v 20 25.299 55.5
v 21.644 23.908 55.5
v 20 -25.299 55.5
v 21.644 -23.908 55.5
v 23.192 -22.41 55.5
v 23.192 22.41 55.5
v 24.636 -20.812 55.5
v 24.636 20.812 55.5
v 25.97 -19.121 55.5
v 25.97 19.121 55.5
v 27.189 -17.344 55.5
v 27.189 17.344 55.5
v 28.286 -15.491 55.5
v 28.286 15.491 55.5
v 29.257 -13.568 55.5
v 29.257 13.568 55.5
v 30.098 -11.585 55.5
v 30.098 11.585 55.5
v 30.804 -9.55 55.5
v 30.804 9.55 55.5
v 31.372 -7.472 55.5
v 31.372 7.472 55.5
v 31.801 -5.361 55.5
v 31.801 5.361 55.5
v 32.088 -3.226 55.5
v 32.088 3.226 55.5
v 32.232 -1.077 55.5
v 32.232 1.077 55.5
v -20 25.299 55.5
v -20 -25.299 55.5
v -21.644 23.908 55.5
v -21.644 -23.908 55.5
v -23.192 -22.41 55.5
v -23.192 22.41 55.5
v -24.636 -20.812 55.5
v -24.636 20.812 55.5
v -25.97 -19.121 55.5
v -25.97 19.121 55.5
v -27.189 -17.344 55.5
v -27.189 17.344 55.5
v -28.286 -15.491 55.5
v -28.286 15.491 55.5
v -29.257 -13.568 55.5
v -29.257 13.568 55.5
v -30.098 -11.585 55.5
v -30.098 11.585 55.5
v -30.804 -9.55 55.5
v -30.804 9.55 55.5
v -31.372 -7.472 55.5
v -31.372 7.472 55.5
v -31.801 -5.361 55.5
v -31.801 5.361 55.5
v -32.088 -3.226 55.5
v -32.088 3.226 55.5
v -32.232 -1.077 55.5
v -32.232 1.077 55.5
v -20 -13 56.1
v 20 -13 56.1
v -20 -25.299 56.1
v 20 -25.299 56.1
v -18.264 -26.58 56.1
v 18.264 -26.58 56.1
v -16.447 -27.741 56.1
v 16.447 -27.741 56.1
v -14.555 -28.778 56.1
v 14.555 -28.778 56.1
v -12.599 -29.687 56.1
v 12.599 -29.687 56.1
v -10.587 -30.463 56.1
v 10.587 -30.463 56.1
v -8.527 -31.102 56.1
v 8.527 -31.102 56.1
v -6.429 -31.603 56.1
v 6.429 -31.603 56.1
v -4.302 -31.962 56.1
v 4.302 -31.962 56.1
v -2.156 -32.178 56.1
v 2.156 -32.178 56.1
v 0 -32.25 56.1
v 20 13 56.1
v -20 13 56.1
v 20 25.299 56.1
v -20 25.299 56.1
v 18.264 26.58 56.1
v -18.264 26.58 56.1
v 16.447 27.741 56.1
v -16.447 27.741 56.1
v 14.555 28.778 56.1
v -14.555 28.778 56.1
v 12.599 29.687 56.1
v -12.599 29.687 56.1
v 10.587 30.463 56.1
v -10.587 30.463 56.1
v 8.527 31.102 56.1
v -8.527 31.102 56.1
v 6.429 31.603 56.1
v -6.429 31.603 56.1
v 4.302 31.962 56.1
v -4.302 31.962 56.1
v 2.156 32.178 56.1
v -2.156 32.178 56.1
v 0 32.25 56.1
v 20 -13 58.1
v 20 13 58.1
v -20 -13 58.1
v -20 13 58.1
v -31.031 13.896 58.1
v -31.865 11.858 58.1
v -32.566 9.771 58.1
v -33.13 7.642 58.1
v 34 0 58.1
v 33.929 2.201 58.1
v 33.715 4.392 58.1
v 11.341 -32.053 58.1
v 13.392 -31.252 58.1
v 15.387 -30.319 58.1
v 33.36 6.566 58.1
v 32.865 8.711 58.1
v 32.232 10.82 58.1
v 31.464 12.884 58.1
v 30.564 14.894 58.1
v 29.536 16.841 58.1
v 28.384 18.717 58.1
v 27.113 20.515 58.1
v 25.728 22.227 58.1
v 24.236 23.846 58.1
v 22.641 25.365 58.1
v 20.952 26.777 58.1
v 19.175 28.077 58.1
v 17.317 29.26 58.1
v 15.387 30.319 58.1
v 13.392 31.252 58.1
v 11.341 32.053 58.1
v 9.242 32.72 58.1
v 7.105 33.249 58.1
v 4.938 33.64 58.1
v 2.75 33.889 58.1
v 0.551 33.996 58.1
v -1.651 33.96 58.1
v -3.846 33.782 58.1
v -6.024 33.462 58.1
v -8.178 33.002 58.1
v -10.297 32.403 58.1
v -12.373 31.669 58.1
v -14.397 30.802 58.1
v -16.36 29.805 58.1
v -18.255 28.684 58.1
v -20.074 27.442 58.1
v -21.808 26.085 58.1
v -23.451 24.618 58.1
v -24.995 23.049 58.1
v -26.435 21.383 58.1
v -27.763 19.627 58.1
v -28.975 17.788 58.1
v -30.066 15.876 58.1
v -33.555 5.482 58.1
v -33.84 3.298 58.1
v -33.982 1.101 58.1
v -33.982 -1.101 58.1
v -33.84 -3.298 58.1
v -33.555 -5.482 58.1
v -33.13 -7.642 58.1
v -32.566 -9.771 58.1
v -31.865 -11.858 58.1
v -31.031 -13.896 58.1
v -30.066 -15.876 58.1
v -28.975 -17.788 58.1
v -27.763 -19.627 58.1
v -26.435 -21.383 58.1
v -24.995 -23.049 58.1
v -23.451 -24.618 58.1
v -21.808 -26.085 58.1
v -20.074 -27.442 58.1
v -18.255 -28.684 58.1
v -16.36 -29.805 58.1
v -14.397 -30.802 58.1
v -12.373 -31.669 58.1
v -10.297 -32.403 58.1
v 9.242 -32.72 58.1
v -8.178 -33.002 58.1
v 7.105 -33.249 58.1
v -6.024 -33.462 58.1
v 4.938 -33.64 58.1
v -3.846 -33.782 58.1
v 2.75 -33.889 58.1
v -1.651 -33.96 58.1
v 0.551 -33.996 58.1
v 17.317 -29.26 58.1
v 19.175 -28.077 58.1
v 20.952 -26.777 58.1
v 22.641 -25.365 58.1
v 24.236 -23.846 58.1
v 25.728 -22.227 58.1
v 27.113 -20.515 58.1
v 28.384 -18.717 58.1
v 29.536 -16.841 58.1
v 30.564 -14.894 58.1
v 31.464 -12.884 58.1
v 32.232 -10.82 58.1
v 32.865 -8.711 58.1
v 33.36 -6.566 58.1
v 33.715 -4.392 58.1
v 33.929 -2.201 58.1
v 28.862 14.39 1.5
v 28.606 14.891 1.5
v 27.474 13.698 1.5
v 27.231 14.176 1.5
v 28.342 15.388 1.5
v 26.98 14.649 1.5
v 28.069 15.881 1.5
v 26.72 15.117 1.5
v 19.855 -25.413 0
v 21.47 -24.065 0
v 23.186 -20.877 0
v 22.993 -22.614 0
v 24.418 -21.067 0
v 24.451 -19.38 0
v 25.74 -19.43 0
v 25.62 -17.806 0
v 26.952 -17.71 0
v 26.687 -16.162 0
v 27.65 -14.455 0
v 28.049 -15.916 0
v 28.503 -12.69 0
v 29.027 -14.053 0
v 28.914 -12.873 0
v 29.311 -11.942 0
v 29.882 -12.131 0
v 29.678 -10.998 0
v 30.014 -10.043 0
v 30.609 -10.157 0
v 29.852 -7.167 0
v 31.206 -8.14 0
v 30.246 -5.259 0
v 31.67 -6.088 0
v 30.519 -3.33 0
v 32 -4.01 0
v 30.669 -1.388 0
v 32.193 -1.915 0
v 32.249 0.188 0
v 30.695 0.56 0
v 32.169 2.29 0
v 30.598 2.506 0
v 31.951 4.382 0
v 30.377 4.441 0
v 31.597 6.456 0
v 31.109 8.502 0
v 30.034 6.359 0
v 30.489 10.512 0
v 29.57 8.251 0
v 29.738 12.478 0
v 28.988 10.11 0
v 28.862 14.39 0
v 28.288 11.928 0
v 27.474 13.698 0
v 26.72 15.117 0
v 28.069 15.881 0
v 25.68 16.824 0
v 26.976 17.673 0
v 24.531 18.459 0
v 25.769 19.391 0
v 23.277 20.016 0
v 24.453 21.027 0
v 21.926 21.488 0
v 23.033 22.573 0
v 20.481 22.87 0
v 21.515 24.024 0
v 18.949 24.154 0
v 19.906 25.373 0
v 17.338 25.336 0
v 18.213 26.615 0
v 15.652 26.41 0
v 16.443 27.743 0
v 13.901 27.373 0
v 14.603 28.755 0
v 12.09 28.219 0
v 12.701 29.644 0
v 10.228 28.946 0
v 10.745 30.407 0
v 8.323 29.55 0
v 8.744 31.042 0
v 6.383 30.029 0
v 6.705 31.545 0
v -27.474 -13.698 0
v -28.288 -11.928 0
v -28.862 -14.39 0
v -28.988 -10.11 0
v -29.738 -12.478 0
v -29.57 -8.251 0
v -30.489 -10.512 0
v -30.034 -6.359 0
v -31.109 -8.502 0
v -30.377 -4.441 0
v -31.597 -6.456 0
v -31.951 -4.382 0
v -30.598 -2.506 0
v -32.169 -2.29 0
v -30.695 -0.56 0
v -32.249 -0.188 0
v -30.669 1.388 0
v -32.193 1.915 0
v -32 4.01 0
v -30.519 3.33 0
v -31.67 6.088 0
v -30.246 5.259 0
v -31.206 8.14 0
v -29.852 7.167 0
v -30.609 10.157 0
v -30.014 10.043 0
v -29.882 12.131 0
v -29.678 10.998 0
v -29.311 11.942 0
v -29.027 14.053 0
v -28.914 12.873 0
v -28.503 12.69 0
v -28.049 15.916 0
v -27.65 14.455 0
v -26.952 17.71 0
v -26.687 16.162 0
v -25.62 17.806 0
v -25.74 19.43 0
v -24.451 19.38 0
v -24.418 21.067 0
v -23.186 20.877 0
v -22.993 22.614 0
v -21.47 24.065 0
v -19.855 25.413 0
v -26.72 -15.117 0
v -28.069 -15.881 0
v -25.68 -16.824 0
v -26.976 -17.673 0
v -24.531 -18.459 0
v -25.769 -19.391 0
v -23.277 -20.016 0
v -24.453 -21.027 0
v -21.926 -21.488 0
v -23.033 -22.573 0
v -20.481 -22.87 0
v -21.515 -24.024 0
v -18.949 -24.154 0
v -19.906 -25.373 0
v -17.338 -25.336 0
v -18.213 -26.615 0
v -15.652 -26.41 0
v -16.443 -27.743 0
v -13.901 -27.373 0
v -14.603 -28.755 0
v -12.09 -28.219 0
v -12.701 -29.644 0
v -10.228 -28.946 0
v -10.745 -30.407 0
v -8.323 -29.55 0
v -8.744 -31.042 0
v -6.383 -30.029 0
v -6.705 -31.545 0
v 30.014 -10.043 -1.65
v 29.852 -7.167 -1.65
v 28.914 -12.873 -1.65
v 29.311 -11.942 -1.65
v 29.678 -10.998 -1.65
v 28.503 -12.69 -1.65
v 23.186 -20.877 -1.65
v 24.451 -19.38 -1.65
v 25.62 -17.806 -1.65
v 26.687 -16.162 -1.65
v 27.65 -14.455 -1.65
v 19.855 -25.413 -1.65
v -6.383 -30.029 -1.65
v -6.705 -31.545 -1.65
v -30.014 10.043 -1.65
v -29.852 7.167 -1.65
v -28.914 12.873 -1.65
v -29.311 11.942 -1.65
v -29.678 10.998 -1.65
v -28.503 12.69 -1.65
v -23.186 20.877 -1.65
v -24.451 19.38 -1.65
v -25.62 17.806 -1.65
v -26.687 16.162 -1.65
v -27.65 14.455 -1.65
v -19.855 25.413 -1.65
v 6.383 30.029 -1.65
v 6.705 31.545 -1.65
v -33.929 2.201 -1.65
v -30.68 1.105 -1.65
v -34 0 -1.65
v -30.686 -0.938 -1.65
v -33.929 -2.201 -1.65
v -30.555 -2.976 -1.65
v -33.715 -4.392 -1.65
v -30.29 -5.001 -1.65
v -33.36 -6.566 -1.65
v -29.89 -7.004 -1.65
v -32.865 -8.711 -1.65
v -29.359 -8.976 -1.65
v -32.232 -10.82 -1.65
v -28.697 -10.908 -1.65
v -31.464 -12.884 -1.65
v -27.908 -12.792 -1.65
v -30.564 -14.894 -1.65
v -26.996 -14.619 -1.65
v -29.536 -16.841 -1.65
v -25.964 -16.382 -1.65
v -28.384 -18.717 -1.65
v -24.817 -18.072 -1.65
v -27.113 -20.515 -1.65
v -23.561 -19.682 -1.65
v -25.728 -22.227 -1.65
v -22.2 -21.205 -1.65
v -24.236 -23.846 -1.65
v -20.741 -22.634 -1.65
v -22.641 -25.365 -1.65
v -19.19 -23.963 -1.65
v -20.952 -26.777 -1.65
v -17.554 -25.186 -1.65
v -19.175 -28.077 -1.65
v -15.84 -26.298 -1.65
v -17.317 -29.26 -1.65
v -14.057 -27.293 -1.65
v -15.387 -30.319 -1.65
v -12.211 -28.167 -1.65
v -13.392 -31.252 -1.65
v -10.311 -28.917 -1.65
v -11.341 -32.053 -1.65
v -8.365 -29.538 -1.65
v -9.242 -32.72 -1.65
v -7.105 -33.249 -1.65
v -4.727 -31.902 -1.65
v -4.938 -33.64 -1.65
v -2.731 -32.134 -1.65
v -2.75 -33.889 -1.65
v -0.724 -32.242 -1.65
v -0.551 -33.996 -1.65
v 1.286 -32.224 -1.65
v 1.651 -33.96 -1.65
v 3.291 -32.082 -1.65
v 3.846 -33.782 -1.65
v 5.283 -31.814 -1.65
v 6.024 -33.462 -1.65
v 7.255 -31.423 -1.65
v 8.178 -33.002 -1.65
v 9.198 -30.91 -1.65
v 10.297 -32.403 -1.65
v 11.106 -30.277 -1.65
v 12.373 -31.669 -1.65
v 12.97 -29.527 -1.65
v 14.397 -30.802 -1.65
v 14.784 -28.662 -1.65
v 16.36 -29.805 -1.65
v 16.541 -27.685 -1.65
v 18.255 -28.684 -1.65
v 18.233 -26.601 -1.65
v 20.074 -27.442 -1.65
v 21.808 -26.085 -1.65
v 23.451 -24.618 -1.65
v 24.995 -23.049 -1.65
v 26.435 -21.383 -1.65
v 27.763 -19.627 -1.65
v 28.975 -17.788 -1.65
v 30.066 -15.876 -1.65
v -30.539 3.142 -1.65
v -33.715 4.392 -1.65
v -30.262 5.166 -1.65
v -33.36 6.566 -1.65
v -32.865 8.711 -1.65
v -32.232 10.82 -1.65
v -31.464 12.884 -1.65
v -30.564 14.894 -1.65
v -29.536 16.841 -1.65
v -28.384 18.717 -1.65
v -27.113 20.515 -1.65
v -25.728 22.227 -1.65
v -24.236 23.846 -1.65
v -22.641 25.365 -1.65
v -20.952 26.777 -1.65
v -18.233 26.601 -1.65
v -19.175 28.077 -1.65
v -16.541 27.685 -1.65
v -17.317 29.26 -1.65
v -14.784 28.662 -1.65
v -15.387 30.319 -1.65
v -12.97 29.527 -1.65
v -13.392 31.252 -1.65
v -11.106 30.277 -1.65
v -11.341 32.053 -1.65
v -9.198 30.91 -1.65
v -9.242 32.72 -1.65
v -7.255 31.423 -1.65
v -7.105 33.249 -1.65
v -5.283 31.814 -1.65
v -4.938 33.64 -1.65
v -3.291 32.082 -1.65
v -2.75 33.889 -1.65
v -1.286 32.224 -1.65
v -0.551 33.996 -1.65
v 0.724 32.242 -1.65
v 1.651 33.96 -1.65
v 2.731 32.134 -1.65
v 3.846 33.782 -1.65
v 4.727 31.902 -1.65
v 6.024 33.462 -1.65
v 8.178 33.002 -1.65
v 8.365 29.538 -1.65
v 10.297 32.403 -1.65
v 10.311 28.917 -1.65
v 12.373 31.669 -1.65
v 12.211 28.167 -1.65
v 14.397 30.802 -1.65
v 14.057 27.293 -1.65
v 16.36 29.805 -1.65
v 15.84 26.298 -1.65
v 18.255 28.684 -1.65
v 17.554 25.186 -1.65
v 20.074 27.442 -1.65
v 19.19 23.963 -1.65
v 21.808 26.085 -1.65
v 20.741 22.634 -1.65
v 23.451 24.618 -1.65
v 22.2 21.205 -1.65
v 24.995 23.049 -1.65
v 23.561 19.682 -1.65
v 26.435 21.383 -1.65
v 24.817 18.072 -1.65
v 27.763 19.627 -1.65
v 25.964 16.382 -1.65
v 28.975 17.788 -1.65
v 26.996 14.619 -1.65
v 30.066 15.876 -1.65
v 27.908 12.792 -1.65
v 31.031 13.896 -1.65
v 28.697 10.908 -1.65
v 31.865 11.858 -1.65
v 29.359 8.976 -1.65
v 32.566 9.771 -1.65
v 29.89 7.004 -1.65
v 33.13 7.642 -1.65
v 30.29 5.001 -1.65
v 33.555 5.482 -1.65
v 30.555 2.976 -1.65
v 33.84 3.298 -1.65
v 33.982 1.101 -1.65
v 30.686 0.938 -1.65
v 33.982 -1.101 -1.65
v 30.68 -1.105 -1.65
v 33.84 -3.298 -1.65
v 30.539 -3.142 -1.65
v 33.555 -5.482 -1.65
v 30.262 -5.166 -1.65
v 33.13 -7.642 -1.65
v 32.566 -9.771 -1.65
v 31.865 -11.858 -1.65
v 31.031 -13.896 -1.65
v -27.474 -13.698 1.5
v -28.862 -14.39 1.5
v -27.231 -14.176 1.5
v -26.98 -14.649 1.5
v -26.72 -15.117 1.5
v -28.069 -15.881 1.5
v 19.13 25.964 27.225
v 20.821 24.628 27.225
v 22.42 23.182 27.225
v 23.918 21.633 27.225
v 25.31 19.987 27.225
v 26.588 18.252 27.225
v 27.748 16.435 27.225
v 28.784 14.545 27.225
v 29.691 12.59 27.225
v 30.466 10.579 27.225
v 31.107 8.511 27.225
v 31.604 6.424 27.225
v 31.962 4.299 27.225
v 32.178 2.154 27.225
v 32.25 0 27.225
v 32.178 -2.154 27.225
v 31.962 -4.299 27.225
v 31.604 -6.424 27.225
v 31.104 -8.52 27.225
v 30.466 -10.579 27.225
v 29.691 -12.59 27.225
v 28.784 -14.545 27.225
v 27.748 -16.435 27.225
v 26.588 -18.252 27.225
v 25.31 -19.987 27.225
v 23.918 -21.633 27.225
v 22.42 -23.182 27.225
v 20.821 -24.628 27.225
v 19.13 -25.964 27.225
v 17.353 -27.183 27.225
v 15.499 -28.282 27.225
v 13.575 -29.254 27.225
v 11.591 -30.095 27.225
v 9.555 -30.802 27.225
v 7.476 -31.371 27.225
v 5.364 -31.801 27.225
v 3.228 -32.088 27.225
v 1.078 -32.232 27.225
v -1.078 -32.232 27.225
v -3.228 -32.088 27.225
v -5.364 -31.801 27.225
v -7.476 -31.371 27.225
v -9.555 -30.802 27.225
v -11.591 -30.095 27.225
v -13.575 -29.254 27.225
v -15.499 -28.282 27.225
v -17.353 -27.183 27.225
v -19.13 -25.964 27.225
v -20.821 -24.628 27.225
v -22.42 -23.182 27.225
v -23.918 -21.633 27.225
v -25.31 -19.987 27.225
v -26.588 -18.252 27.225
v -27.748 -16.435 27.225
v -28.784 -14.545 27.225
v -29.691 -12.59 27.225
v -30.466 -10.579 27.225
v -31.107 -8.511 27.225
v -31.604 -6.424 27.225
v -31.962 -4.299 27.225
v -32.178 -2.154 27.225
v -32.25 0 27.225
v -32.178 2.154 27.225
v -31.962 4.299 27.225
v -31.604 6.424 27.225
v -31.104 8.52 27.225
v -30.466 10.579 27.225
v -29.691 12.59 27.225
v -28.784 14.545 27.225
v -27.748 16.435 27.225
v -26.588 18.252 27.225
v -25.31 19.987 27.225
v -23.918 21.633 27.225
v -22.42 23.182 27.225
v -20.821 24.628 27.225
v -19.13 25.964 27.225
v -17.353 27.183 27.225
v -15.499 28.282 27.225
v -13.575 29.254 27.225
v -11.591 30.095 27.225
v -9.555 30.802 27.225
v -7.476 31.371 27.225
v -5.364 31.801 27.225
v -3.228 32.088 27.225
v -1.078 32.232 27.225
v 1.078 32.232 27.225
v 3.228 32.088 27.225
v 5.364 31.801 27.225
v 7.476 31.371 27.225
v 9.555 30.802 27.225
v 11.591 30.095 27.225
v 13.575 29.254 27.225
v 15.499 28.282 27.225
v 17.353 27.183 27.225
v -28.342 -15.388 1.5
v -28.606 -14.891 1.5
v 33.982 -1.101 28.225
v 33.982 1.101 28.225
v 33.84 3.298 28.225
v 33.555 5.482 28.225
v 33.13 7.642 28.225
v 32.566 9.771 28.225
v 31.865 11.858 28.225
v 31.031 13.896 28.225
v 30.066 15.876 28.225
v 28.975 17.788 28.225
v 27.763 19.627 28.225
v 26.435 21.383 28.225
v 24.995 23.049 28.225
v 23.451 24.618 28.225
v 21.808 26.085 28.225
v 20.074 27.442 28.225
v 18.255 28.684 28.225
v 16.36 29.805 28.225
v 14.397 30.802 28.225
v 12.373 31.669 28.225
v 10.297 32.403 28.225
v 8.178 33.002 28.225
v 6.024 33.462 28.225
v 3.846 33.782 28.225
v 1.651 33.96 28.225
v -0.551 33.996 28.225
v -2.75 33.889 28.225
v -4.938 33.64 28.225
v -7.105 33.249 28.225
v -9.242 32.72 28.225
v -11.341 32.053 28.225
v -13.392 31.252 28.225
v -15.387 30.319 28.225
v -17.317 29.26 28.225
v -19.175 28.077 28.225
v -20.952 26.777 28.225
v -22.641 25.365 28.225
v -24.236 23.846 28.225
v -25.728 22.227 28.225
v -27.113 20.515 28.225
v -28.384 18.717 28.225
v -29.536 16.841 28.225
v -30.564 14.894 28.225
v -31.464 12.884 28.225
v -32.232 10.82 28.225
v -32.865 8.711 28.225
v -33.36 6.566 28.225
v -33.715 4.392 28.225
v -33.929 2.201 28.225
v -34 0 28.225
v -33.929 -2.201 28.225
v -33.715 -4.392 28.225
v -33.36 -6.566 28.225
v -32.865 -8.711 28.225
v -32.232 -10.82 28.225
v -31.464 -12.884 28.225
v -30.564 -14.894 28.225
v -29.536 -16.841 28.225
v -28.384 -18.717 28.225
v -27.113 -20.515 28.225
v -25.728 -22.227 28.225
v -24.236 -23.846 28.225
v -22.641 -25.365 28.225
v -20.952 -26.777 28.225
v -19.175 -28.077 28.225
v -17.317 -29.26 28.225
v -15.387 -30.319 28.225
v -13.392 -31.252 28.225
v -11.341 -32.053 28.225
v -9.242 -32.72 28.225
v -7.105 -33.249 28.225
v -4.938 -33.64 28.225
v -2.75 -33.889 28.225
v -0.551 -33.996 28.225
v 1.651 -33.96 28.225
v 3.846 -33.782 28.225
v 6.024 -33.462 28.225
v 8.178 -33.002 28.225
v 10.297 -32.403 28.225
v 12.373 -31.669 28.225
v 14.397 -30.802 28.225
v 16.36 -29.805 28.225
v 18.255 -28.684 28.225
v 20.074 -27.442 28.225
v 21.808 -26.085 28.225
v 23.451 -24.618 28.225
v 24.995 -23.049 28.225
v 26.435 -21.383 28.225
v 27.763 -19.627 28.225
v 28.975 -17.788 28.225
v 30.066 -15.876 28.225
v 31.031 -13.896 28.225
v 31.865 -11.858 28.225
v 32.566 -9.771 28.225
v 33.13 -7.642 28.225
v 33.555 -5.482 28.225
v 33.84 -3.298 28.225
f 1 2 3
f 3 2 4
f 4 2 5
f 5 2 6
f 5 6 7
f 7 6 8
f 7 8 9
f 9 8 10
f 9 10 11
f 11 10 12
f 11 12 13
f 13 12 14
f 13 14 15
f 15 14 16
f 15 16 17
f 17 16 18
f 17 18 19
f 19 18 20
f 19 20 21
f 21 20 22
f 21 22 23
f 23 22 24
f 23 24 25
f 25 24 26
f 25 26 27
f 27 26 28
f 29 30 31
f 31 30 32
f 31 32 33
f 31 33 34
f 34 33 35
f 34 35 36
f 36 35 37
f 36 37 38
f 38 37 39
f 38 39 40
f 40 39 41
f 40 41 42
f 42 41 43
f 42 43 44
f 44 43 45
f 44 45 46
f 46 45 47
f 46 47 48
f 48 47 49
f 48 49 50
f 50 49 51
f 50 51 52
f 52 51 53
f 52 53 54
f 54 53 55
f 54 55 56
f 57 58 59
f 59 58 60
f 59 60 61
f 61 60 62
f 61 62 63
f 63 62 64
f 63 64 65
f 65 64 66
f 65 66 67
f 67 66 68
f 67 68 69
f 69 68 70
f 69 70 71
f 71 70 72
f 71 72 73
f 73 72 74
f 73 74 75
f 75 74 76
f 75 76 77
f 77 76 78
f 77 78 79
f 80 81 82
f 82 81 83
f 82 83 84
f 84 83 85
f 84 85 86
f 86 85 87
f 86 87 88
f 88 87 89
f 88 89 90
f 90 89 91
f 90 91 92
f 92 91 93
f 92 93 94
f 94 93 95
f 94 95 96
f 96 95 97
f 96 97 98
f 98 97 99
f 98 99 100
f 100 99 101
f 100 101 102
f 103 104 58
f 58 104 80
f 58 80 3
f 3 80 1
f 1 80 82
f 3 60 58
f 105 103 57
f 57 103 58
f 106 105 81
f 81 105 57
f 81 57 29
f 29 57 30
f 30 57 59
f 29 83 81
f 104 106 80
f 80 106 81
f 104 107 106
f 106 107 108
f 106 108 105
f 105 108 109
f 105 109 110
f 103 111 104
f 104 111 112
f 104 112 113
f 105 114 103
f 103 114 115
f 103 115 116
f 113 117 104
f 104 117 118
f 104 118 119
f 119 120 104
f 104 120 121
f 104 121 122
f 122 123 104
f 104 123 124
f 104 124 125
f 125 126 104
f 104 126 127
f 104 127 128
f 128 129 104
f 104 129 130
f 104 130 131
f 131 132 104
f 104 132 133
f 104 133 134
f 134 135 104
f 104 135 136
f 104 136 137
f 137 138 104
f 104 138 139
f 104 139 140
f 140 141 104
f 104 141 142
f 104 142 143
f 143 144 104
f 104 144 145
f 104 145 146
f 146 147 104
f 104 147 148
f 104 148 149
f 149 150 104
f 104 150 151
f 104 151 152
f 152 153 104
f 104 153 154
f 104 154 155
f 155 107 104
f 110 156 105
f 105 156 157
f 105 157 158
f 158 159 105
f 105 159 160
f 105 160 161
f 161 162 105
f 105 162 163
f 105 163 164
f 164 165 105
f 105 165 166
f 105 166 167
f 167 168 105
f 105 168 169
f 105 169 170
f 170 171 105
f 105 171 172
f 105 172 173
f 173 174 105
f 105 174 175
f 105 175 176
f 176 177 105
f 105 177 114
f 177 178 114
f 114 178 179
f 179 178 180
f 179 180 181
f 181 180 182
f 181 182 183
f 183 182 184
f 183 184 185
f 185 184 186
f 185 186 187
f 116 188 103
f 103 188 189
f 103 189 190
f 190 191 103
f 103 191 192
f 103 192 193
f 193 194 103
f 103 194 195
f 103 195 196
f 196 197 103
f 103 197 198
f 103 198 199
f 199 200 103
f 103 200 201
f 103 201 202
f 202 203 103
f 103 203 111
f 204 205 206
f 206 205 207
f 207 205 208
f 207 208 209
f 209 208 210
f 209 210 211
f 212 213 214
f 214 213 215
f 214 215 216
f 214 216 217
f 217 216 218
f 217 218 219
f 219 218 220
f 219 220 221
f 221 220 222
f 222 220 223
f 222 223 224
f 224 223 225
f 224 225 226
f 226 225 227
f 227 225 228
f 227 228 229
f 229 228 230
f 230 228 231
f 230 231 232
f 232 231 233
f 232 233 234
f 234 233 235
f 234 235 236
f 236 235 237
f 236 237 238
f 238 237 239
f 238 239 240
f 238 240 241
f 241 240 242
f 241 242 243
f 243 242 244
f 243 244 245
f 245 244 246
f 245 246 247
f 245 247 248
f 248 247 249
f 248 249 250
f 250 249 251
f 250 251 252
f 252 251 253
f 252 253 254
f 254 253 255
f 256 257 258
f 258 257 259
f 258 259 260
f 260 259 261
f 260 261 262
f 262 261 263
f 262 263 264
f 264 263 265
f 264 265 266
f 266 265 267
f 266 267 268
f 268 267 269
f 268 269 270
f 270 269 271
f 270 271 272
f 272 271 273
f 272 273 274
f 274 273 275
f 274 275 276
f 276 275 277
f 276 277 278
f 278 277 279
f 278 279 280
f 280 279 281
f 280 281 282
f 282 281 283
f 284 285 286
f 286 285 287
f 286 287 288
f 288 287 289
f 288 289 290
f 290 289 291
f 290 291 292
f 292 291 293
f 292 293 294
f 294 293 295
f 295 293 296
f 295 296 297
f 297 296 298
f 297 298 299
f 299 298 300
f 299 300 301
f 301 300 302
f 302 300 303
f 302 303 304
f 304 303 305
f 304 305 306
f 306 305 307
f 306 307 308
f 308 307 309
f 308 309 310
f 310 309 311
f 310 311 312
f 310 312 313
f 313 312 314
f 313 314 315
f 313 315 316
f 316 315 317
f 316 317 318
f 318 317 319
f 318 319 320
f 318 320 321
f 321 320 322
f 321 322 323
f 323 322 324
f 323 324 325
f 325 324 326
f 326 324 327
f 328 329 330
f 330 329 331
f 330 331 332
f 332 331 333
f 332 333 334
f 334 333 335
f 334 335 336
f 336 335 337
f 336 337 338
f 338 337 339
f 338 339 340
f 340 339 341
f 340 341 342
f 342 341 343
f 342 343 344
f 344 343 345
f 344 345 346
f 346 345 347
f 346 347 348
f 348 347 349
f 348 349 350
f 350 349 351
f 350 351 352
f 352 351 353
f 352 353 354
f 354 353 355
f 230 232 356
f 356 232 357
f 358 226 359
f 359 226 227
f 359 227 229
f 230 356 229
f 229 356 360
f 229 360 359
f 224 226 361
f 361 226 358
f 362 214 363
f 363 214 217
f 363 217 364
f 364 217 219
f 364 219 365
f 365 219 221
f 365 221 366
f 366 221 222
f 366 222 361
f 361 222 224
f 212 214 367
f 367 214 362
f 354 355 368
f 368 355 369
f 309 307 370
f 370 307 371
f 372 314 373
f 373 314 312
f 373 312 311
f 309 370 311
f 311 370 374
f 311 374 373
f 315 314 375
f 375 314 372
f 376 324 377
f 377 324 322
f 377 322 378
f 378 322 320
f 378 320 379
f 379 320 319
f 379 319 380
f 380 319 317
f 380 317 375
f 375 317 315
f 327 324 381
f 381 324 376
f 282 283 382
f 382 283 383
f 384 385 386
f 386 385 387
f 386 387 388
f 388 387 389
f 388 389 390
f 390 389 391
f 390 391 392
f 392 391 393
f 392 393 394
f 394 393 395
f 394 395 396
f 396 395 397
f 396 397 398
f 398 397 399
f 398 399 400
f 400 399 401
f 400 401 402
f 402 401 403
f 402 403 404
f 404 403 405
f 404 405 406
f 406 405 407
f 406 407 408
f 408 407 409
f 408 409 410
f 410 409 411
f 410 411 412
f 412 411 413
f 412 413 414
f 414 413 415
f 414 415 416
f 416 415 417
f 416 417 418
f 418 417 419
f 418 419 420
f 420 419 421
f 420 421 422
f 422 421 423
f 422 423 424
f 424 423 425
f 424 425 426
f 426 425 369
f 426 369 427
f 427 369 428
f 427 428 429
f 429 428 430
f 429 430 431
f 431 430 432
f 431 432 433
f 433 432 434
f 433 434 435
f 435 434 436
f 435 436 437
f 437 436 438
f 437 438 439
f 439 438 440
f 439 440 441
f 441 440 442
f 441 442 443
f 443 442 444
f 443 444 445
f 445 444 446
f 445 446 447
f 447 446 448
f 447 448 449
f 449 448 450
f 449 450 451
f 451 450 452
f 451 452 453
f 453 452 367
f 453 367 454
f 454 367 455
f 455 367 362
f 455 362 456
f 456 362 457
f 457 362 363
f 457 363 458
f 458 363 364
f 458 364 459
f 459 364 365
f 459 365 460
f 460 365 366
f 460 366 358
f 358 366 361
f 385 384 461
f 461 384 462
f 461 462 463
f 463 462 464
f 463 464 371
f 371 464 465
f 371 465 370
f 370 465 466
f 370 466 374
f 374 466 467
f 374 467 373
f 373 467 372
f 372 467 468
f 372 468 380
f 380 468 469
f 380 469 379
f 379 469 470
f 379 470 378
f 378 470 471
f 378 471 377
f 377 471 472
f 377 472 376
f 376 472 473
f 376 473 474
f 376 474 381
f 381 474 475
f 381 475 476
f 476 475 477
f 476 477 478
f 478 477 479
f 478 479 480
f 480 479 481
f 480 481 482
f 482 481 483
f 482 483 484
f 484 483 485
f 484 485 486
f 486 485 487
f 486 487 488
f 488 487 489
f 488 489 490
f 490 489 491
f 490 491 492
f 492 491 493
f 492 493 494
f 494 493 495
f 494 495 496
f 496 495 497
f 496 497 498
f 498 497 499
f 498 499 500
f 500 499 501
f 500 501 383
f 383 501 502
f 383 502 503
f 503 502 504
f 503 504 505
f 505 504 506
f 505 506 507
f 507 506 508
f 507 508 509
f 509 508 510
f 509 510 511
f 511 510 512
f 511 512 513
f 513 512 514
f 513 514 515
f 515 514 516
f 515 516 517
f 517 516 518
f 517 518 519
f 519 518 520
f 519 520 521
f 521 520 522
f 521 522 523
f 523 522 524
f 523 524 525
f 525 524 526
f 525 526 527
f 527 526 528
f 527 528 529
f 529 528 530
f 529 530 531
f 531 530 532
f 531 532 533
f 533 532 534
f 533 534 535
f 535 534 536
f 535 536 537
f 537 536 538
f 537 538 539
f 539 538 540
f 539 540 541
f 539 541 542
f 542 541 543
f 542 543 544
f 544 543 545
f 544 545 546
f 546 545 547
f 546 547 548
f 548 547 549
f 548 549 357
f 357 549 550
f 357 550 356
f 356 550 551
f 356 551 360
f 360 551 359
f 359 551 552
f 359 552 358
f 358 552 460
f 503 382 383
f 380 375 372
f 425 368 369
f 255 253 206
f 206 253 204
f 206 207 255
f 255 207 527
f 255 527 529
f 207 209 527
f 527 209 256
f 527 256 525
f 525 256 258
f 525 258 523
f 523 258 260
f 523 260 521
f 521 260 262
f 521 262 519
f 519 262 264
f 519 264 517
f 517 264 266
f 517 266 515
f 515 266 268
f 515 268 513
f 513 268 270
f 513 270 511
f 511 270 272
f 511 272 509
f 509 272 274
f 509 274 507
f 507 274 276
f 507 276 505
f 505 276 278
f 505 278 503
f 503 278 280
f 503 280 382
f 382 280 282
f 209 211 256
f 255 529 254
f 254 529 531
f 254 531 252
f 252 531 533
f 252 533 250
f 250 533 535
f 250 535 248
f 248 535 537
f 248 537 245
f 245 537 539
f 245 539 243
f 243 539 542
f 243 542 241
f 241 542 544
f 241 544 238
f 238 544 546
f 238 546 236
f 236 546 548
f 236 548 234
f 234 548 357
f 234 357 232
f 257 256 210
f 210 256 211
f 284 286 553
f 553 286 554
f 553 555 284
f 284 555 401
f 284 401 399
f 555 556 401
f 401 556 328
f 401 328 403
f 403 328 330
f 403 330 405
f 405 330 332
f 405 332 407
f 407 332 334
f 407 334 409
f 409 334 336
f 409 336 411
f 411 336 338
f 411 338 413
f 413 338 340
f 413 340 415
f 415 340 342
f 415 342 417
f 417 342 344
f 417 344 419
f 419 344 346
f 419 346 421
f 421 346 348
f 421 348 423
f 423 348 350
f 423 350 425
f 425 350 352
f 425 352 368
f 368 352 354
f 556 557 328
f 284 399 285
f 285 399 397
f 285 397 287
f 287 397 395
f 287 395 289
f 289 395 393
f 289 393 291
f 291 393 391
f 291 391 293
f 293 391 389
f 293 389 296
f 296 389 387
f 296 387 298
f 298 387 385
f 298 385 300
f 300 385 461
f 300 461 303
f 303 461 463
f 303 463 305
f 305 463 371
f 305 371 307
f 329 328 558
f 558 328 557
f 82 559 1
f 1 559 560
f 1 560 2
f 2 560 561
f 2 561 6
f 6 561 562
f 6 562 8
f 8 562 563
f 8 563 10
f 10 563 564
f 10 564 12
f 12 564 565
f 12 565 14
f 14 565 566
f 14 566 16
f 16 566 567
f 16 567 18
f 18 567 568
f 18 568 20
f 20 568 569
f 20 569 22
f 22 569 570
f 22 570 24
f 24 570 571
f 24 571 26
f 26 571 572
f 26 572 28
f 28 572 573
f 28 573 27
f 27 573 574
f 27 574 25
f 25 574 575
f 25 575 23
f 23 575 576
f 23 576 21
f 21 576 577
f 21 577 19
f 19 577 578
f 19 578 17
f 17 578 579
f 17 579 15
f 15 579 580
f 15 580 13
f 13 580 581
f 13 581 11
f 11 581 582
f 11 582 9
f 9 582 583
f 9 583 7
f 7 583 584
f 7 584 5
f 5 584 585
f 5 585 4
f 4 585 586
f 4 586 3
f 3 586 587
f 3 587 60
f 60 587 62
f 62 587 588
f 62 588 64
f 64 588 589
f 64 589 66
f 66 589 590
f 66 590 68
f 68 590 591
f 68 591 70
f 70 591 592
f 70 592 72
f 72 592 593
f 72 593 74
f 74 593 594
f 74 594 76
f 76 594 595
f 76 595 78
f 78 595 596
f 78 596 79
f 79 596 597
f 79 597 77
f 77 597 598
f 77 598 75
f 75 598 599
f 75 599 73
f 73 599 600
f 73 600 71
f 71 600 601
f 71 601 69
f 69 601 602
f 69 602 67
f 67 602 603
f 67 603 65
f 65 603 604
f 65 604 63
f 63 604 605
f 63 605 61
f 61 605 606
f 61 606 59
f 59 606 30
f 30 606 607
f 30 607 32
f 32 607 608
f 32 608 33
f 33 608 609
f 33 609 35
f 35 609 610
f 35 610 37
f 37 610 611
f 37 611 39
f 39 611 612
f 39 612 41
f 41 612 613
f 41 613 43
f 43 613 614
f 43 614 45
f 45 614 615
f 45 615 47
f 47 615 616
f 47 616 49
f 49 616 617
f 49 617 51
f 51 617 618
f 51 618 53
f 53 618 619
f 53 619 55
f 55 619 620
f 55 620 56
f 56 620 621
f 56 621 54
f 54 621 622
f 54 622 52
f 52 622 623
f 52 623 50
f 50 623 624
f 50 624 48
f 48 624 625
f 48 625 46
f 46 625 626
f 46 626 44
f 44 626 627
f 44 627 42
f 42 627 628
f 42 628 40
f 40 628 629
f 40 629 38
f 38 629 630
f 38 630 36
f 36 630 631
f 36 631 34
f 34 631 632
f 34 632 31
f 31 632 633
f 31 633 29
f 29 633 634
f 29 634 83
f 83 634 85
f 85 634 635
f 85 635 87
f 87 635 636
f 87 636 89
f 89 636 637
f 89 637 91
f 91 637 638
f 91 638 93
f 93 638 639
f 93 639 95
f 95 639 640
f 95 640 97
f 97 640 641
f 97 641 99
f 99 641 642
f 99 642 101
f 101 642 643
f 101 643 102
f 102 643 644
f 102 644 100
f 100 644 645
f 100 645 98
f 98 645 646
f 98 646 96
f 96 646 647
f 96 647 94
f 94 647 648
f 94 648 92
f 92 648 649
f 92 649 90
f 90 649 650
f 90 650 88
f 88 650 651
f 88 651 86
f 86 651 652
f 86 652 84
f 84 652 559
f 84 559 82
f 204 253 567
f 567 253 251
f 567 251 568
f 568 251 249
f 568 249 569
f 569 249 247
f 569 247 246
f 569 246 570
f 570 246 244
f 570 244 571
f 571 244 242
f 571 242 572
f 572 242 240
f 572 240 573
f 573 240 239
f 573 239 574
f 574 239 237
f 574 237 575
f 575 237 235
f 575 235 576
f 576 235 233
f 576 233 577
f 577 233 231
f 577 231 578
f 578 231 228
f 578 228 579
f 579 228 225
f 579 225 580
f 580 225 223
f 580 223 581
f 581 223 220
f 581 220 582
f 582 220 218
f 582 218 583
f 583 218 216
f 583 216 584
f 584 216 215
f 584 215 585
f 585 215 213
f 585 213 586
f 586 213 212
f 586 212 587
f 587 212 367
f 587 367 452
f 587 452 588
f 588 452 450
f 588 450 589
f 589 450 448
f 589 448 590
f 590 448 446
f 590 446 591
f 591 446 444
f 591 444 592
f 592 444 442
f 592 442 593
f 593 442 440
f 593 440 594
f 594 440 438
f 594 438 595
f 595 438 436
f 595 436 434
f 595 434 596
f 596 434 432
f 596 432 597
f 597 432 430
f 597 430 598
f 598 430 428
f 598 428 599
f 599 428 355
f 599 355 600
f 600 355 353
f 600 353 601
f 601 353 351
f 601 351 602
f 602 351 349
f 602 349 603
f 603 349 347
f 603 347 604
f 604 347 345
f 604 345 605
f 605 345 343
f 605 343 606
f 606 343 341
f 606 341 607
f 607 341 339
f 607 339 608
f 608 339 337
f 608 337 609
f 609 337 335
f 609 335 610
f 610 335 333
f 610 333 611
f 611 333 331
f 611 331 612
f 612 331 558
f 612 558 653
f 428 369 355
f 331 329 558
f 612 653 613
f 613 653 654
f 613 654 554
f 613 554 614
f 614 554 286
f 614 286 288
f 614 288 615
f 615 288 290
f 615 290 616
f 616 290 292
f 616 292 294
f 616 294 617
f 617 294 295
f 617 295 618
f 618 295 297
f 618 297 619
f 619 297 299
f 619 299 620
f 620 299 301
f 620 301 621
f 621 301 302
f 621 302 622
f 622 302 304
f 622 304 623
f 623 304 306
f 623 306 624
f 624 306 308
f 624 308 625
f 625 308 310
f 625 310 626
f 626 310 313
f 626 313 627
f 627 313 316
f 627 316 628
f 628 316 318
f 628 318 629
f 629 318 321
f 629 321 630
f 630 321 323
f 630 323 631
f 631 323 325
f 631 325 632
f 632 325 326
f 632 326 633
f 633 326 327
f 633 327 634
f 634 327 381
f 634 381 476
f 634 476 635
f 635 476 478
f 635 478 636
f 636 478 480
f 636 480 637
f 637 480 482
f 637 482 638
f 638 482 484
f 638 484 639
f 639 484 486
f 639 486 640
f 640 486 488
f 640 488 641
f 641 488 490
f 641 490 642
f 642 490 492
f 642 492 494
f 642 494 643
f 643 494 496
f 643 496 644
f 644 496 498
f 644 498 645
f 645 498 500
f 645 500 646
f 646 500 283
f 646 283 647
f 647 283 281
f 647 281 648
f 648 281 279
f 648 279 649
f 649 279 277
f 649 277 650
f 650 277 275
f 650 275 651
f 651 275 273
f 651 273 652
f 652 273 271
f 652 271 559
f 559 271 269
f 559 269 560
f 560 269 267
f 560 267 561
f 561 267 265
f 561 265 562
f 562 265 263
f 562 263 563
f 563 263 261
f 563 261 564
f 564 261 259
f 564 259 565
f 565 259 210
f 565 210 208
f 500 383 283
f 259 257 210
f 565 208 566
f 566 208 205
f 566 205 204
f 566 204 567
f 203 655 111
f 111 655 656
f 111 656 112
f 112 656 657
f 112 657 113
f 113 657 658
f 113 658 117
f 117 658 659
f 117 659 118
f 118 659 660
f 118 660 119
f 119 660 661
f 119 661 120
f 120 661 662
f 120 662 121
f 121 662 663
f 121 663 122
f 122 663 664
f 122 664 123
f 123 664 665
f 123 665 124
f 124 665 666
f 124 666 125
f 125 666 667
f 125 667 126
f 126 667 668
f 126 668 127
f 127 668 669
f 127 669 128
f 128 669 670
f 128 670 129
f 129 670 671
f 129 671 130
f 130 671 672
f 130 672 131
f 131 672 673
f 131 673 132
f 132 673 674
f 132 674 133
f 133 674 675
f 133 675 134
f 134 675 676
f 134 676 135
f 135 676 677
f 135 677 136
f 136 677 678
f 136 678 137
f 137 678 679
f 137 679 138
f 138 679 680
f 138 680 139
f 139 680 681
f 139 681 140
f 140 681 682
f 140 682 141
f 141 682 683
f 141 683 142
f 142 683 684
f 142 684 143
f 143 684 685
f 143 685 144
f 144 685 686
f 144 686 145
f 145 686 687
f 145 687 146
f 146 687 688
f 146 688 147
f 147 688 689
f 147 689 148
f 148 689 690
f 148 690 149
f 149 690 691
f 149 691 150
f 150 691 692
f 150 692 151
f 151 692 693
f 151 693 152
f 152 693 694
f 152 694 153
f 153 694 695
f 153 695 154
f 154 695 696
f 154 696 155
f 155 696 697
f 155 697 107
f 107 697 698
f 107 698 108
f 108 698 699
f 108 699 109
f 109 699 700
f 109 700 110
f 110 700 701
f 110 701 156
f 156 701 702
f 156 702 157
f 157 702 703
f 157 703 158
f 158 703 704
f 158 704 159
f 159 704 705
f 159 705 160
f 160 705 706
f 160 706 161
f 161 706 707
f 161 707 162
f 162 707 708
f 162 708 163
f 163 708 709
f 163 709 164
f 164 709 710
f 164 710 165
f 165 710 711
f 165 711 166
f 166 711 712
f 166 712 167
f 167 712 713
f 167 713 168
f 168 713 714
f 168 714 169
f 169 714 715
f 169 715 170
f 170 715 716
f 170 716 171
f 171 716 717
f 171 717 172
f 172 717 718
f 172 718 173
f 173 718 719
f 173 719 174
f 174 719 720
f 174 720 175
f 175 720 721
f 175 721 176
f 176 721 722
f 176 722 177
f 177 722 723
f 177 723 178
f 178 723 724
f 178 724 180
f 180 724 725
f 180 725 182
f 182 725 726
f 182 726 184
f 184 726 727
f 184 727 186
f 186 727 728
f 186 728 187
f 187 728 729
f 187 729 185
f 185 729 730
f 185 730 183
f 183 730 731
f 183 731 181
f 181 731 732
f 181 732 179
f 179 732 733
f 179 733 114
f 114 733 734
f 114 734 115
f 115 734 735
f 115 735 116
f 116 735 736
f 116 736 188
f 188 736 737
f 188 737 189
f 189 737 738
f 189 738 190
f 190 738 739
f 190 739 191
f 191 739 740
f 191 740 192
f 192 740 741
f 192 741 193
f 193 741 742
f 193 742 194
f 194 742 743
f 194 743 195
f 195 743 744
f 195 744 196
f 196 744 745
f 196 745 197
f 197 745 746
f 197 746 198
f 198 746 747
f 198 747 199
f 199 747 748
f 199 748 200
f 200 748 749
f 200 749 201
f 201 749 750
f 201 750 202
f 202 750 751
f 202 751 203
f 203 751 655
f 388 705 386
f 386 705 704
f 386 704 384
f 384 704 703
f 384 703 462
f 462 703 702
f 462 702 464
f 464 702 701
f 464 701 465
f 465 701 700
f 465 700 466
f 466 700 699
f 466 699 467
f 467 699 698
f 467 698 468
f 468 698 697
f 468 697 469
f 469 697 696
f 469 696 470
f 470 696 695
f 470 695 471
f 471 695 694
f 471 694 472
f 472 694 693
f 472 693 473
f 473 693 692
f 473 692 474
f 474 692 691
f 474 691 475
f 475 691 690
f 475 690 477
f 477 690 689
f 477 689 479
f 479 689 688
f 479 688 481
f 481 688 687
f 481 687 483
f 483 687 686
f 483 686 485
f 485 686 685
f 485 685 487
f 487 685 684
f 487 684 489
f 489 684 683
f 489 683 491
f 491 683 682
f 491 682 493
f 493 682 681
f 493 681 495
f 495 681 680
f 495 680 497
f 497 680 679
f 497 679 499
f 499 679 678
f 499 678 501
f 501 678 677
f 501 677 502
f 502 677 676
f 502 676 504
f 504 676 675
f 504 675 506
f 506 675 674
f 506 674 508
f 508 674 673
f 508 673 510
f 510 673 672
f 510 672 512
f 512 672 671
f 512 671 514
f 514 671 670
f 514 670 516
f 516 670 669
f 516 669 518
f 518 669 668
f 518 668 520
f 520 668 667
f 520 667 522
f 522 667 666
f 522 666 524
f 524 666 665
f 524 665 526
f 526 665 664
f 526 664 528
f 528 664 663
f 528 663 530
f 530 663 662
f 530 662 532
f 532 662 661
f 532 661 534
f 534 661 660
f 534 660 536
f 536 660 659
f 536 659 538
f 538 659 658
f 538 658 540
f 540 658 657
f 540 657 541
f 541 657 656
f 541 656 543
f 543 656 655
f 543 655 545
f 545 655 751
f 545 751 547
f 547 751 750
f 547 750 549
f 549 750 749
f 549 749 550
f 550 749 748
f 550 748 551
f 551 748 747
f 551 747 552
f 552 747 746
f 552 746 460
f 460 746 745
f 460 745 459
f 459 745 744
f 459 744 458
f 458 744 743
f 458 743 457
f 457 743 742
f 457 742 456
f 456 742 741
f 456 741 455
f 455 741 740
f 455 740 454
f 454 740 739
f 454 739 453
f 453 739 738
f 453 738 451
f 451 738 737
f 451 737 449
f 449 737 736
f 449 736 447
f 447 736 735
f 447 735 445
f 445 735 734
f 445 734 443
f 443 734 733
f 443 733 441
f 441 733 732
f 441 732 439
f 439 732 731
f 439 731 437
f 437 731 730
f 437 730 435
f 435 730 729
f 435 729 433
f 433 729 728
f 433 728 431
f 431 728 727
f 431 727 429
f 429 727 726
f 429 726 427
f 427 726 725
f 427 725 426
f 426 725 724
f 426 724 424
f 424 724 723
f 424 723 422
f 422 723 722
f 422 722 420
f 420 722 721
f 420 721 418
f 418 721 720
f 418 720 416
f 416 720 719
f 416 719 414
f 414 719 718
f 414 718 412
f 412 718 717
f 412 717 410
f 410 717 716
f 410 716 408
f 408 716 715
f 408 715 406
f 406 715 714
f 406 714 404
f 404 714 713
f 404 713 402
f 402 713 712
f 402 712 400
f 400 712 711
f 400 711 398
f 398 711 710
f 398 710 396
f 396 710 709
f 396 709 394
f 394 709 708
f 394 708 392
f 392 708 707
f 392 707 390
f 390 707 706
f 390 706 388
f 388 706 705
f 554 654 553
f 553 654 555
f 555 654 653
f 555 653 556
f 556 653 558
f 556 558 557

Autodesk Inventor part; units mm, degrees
ref_plane "YZ Plane" through (0, 0, 0) normal (1, 0, 0) x (0, 1, 0)
ref_plane "XZ Plane" through (0, 0, 0) normal (0, 1, 0) x (-1, 0, 0)
ref_plane "XY Plane" through (0, 0, 0) normal (0, 0, 1) x (1, 0, 0)
sketch "Sketch1" plane through (0, 0, 0) normal (0, 0, 1) x (1, 0, 0)
  circle A0 centre (0, 0) radius 32.25
  circle A1 centre (0, 0) radius 34
  line L0 (0, 0) -> (34, 0) construction
  line L1 (0, 0) -> (30.0202, 15.962) construction
  circle A2 centre (0, 0) radius 30.7
  line L2 (0, 0) -> (26.7199, 15.1174) construction
  line L3 (0, 0) -> (27.4745, 13.6983) construction
  line L4 (28.069, 15.8807) -> (29.5921, 16.7424) construction
  line L5 (28.8616, 14.3899) -> (30.4278, 15.1707) construction
  line L6 (27.4745, 13.6983) -> (28.8616, 14.3899)
  line L7 (26.7199, 15.1174) -> (28.069, 15.8807)
  line L8 (-26.7199, -15.1174) -> (-28.069, -15.8807)
  line L9 (-27.4745, -13.6983) -> (-28.8616, -14.3899)
  point P0 (-28.069, -15.8807)
  point P1 (-27.4745, -13.6983)
  dimension "d0" = 64.5
  dimension "d1" = 68
  dimension "d2" = 28
  dimension "d3" = 61.4
  dimension "d4" = 3
  dimension "d11" = 360
extrude "Extrusion1" add sketch "Sketch1" along normal blind 1.5 contours L6 A2 L7 A0 | A0 L9 A2 L8 | A1
sketch "Sketch2" plane through (0, 0, 0) normal (0, 0, -1) x (-1, 0, 0)
  line L0 (-27.4745, 13.6983) -> (-28.8616, 14.3899) projected
  arc A0 (-28.8616, 14.3899) -> (28.069, -15.8807) centre (0, 0) ccw projected
  line L1 (28.069, -15.8807) -> (26.7199, -15.1174) projected
  arc A1 (26.7199, -15.1174) -> (27.4745, -13.6983) centre (0, 0) ccw projected
  line L2 (27.4745, -13.6983) -> (28.8616, -14.3899) projected
  arc A2 (28.8616, -14.3899) -> (-28.069, 15.8807) centre (0, 0) ccw projected
  line L3 (-28.069, 15.8807) -> (-26.7199, 15.1174) projected
  arc A3 (-26.7199, 15.1174) -> (-27.4745, 13.6983) centre (0, 0) ccw projected
  circle A4 centre (0, 0) radius 34 projected
  line L4 (0, 0) -> (-34, 0) construction
  arc A5 (-30.7, 0) -> (-29.8518, -7.1668) centre (0, 0) ccw
  arc A6 (-28.9137, -12.8732) -> (-30.0144, -10.0427) centre (0, 0) ccw construction
  line L5 (0, 0) -> (-28.0458, -12.4868) construction
  line L6 (-28.0458, -12.4868) -> (-28.5026, -12.6902) construction
  line L7 (0, 0) -> (-30.0144, -10.0427) construction
  line L8 (0, 0) -> (-30.7755, -7.3885) construction
  line L9 (-30.0144, -10.0427) -> (-29.8518, -7.1668)
  arc A7 (-23.1861, -20.8769) -> (-28.5026, -12.6902) centre (0, 0) ccw construction
  line L10 (0, 0) -> (-23.9664, -21.5795) construction
  line L11 (-28.5026, -12.6902) -> (-28.9137, -12.8732)
  line L12 (0, 0) -> (-19.8551, -25.4133) construction
  line L13 (-23.1861, -20.8769) -> (-19.8551, -25.4133)
  arc A8 (-30.0144, -10.0427) -> (-28.9137, -12.8732) centre (0, 0) ccw
  arc A9 (-28.5026, -12.6902) -> (-23.1861, -20.8769) centre (0, 0) ccw
  arc A10 (-27.4745, 13.6983) -> (-30.7, 0) centre (0, 0) ccw
  arc A11 (-29.8518, -7.1668) -> (-26.7199, 15.1174) centre (0, 0) ccw construction
  arc A12 (-26.7199, 15.1174) -> (-27.4745, 13.6983) centre (0, 0) ccw
  arc A13 (26.7199, -15.1174) -> (27.4745, -13.6983) centre (0, 0) ccw
  arc A14 (27.4745, -13.6983) -> (30.7, 0) centre (0, 0) ccw
  arc A15 (30.7, 0) -> (29.8518, 7.1668) centre (0, 0) ccw
  line L14 (30.0144, 10.0427) -> (29.8518, 7.1668)
  arc A16 (30.0144, 10.0427) -> (28.9137, 12.8732) centre (0, 0) ccw
  line L15 (28.5026, 12.6902) -> (28.9137, 12.8732)
  arc A17 (28.5026, 12.6902) -> (23.1861, 20.8769) centre (0, 0) ccw
  line L16 (23.1861, 20.8769) -> (19.8551, 25.4133)
  line L17 (0, 0) -> (6.3829, -30.0291) construction
  arc A18 (-28.8616, 14.3899) -> (28.069, -15.8807) centre (0, 0) ccw projected
  arc A19 (6.3829, -30.0291) -> (26.7199, -15.1174) centre (0, 0) ccw
  line L18 (6.3829, -30.0291) -> (6.7052, -31.5453)
  line L19 (0, 0) -> (-6.3829, 30.0291) construction
  line L20 (-6.3829, 30.0291) -> (-6.7052, 31.5453)
  arc A20 (-6.3829, 30.0291) -> (-26.7199, 15.1174) centre (0, 0) ccw
  point P0 (28.0458, 12.4868)
  point P1 (27.4745, -13.6983)
  point P2 (-26.7199, 15.1174)
  dimension "d15" = 63.3
  dimension "d16" = 24
  dimension "d17" = 18.5
  dimension "d18" = 13.5
  dimension "d19" = 62.4
  dimension "d20" = 42
  dimension "d21" = 52
  dimension "d24" = 360
  dimension "d43" = 50
  dimension "d46" = 360
extrude "Extrusion2" add sketch "Sketch2" along normal blind 1.65 contours A10 A5 L9 A8 L11 A9 L13 A0 L0 | L3 A2 L20 A20 | L18 A19 L1 A0 | A2 L2 A14 A15 L14 A16 L15 A17 L16 | A4
sketch "Sketch4" plane through (0, 0, 1.5) normal (0, 0, 1) x (1, 0, 0)
  circle A0 centre (0, 0) radius 34 projected
  arc A1 (28.069, 15.8807) -> (-28.8616, -14.3899) centre (0, 0) ccw projected
  circle A2 centre (0, 0) radius 32.25
  point P0 (-28.8616, -14.3899)
extrude "Extrusion4" add sketch "Sketch4" along normal blind 56.6
sketch "Sketch5" plane through (0, 0, 58.1) normal (0, 0, 1) x (1, 0, 0)
  circle A0 centre (0, 0) radius 34 projected
  line L0 (-20, 13) -> (20, 13)
  line L1 (20, 13) -> (20, -13)
  line L2 (20, -13) -> (-20, -13)
  line L3 (-20, -13) -> (-20, 13)
  line L4 (-20, 13) -> (20, -13) construction
  line L5 (20, 13) -> (-20, -13) construction
  dimension "d37" = 40
  dimension "d38" = 26
extrude "Extrusion5" add sketch "Sketch5" against normal blind 2
sketch "Sketch6" plane through (0, 0, 56.1) normal (0, 0, -1) x (-1, 0, 0)
  line L0 (-20, 13) -> (20, 13) projected
  line L1 (20, 13) -> (20, -13) projected
  line L2 (20, -13) -> (-20, -13) projected
  line L3 (-20, -13) -> (-20, 13) projected
  circle A0 centre (0, 0) radius 32.25 projected
  line L4 (-20, -13) -> (20, -13) projected
  line L5 (20, -13) -> (20, -25.2995)
  line L6 (20, -13) -> (20, 13) construction
  line L7 (20, 0) -> (-20, 0) construction
  line L8 (-20, 13) -> (-20, -13) construction
  line L9 (0, -13) -> (0, 13) construction
  line L10 (20, 13) -> (-20, 13) construction
  line L11 (-20, -13) -> (-20, -25.2995)
  line L12 (20, 13) -> (20, 25.2995)
  line L13 (-20, 13) -> (-20, 25.2995)
extrude "Extrusion6" add sketch "Sketch6" along normal blind 0.6 contours L3 L11 A0 L13 | L12 A0 L5 L1
properties part number "LensMount"
